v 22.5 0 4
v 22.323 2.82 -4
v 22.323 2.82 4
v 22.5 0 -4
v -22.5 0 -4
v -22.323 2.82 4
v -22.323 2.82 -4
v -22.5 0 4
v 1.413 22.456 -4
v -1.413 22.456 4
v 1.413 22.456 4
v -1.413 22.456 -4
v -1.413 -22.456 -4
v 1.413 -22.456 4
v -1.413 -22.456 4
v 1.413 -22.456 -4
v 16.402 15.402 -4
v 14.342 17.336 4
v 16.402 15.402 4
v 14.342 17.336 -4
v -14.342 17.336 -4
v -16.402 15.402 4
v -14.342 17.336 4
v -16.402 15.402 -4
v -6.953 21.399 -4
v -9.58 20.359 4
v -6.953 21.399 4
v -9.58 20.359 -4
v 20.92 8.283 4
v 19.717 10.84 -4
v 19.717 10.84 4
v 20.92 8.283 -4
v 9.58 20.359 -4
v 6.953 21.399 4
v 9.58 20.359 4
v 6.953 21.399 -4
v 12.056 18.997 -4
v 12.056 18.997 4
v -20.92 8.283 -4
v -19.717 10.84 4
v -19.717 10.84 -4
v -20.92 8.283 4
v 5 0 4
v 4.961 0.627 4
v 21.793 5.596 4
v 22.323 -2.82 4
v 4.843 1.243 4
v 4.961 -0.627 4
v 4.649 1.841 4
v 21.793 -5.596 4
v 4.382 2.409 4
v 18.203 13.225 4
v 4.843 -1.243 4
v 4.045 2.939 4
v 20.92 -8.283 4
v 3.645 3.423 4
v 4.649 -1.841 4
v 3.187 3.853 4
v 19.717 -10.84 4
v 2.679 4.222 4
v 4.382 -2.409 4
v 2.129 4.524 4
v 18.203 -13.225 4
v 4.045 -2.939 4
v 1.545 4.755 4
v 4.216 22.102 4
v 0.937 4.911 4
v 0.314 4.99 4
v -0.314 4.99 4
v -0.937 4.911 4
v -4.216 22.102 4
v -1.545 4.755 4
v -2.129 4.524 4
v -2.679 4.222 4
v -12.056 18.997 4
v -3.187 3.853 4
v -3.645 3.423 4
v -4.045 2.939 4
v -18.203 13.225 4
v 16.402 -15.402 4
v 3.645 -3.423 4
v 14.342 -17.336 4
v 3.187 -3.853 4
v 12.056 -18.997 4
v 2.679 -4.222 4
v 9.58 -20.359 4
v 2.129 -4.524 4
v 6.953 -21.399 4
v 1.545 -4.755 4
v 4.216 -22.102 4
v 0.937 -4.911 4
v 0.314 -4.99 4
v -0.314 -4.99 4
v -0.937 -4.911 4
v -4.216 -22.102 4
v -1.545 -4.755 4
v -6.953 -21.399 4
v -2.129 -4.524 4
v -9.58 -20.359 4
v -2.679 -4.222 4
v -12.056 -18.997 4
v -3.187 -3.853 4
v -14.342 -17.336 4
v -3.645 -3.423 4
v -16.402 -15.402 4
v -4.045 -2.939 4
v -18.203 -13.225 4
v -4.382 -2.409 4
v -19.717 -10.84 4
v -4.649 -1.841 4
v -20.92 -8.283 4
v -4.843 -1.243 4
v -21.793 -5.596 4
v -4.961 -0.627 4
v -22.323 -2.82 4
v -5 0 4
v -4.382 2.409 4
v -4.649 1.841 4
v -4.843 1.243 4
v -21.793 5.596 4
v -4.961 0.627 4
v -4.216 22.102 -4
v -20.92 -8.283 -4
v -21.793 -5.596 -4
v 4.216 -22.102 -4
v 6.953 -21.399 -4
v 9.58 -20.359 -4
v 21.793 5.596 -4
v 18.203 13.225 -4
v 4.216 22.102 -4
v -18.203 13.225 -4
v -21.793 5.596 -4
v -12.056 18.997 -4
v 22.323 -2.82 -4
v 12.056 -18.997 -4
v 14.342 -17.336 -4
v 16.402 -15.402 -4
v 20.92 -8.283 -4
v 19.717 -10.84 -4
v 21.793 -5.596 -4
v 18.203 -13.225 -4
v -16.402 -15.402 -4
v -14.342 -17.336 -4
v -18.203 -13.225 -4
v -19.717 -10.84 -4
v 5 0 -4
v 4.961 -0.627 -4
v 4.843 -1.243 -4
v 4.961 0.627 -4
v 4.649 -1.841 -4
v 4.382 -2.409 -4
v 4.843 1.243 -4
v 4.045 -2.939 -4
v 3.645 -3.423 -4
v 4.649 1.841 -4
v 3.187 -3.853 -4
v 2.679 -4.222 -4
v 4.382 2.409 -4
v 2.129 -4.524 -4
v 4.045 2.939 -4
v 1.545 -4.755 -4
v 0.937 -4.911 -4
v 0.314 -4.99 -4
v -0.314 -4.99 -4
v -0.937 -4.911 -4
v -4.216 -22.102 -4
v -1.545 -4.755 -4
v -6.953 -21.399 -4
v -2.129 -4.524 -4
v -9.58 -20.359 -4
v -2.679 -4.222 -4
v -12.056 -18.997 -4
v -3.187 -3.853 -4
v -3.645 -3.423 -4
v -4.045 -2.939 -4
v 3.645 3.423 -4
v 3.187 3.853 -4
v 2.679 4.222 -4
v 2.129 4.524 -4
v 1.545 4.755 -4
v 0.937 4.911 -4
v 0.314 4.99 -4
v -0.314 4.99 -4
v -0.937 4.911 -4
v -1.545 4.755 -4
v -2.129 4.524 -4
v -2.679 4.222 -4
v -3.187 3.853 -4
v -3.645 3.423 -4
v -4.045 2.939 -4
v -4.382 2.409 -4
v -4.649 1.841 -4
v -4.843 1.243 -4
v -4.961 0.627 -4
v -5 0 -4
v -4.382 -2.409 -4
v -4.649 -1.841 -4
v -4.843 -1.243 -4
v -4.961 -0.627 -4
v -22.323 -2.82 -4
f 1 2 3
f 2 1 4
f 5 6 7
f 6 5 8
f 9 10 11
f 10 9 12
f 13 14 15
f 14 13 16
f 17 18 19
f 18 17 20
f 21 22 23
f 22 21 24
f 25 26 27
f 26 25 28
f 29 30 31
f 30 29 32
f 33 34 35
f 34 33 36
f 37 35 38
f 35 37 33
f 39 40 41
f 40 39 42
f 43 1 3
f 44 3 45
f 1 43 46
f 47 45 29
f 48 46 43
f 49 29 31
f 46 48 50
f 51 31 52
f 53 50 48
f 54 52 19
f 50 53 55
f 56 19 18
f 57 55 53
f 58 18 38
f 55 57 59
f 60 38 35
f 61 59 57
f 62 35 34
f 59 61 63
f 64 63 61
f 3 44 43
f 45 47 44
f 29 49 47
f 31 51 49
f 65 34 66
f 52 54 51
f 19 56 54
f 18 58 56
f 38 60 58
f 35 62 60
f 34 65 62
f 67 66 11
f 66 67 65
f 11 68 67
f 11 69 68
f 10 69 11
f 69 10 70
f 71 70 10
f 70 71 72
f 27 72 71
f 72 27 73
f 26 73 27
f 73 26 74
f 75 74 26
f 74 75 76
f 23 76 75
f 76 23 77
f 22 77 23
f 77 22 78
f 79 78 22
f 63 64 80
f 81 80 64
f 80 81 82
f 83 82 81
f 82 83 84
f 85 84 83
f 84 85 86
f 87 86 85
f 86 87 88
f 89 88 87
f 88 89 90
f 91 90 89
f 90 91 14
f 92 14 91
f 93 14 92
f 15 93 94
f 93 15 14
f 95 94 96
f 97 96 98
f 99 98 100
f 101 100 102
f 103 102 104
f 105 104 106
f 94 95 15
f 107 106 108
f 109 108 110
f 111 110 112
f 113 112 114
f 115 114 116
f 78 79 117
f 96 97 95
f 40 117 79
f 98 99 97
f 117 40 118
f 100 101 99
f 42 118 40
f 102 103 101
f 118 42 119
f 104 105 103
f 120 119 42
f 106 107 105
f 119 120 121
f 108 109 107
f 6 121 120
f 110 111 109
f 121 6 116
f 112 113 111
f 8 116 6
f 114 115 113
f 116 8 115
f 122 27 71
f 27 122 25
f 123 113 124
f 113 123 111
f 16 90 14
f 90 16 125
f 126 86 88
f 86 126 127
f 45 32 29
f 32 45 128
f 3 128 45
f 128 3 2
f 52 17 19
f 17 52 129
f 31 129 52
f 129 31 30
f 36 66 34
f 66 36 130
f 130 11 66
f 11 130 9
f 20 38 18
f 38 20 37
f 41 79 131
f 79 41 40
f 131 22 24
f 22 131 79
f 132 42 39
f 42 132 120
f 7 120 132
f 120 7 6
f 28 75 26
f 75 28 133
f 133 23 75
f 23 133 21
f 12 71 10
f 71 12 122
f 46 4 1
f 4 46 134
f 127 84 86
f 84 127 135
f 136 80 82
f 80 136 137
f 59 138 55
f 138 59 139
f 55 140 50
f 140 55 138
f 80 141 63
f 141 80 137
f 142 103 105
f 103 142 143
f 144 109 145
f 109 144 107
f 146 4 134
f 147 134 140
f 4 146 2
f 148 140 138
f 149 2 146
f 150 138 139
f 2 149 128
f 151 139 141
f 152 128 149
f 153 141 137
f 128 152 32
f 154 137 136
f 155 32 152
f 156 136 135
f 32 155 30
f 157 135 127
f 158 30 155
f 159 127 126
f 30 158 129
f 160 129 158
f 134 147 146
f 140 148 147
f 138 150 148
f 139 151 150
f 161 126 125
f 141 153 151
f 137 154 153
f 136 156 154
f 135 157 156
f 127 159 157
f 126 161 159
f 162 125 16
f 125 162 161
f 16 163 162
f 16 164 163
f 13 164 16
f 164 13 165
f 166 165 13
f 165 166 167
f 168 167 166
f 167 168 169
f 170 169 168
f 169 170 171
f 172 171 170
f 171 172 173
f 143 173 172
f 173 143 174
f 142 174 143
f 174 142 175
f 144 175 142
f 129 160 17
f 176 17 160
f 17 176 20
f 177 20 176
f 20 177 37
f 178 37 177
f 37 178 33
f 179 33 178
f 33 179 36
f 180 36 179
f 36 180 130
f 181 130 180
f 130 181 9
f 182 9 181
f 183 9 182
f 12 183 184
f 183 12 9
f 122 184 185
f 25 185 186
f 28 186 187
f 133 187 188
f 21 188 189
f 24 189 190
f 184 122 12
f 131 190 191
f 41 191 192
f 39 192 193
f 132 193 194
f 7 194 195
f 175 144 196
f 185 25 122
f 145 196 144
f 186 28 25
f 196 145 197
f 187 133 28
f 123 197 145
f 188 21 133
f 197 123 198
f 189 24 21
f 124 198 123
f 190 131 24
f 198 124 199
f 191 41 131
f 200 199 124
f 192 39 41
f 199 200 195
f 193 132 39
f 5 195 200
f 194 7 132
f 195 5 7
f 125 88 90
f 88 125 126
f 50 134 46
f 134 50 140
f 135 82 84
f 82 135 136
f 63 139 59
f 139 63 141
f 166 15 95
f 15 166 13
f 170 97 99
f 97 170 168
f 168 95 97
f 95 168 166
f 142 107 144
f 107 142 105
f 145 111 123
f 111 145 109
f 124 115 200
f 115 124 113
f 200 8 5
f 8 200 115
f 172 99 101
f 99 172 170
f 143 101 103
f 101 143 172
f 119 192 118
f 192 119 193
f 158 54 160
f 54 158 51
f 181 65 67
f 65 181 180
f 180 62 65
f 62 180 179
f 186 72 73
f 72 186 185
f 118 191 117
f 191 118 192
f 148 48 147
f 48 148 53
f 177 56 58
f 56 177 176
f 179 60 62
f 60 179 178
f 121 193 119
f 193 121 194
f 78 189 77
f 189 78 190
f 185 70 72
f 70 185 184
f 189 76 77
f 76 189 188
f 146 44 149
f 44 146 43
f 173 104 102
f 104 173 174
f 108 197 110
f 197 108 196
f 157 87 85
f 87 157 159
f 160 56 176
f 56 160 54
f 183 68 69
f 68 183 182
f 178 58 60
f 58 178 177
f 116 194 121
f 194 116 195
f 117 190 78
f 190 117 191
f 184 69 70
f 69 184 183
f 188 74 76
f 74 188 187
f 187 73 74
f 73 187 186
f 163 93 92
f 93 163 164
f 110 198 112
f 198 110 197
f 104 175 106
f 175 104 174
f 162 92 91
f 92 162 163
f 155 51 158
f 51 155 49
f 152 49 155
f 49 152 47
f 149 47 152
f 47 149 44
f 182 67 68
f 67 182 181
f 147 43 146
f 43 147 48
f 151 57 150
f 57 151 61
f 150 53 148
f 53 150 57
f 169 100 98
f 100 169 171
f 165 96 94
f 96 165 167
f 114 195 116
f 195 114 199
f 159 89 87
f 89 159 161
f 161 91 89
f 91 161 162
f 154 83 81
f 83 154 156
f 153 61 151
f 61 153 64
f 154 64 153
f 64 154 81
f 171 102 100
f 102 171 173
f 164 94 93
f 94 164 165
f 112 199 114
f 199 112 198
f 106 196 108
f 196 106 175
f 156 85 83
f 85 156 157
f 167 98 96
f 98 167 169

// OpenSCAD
$fn = 50;


difference() {
	union() {
		translate(v = [0, 0, -4.0000000000]) {
			cylinder(h = 8, r = 22.5000000000);
		}
	}
	union() {
		translate(v = [0, 0, -100.0000000000]) {
			cylinder(h = 200, r = 5);
		}
	}
}
